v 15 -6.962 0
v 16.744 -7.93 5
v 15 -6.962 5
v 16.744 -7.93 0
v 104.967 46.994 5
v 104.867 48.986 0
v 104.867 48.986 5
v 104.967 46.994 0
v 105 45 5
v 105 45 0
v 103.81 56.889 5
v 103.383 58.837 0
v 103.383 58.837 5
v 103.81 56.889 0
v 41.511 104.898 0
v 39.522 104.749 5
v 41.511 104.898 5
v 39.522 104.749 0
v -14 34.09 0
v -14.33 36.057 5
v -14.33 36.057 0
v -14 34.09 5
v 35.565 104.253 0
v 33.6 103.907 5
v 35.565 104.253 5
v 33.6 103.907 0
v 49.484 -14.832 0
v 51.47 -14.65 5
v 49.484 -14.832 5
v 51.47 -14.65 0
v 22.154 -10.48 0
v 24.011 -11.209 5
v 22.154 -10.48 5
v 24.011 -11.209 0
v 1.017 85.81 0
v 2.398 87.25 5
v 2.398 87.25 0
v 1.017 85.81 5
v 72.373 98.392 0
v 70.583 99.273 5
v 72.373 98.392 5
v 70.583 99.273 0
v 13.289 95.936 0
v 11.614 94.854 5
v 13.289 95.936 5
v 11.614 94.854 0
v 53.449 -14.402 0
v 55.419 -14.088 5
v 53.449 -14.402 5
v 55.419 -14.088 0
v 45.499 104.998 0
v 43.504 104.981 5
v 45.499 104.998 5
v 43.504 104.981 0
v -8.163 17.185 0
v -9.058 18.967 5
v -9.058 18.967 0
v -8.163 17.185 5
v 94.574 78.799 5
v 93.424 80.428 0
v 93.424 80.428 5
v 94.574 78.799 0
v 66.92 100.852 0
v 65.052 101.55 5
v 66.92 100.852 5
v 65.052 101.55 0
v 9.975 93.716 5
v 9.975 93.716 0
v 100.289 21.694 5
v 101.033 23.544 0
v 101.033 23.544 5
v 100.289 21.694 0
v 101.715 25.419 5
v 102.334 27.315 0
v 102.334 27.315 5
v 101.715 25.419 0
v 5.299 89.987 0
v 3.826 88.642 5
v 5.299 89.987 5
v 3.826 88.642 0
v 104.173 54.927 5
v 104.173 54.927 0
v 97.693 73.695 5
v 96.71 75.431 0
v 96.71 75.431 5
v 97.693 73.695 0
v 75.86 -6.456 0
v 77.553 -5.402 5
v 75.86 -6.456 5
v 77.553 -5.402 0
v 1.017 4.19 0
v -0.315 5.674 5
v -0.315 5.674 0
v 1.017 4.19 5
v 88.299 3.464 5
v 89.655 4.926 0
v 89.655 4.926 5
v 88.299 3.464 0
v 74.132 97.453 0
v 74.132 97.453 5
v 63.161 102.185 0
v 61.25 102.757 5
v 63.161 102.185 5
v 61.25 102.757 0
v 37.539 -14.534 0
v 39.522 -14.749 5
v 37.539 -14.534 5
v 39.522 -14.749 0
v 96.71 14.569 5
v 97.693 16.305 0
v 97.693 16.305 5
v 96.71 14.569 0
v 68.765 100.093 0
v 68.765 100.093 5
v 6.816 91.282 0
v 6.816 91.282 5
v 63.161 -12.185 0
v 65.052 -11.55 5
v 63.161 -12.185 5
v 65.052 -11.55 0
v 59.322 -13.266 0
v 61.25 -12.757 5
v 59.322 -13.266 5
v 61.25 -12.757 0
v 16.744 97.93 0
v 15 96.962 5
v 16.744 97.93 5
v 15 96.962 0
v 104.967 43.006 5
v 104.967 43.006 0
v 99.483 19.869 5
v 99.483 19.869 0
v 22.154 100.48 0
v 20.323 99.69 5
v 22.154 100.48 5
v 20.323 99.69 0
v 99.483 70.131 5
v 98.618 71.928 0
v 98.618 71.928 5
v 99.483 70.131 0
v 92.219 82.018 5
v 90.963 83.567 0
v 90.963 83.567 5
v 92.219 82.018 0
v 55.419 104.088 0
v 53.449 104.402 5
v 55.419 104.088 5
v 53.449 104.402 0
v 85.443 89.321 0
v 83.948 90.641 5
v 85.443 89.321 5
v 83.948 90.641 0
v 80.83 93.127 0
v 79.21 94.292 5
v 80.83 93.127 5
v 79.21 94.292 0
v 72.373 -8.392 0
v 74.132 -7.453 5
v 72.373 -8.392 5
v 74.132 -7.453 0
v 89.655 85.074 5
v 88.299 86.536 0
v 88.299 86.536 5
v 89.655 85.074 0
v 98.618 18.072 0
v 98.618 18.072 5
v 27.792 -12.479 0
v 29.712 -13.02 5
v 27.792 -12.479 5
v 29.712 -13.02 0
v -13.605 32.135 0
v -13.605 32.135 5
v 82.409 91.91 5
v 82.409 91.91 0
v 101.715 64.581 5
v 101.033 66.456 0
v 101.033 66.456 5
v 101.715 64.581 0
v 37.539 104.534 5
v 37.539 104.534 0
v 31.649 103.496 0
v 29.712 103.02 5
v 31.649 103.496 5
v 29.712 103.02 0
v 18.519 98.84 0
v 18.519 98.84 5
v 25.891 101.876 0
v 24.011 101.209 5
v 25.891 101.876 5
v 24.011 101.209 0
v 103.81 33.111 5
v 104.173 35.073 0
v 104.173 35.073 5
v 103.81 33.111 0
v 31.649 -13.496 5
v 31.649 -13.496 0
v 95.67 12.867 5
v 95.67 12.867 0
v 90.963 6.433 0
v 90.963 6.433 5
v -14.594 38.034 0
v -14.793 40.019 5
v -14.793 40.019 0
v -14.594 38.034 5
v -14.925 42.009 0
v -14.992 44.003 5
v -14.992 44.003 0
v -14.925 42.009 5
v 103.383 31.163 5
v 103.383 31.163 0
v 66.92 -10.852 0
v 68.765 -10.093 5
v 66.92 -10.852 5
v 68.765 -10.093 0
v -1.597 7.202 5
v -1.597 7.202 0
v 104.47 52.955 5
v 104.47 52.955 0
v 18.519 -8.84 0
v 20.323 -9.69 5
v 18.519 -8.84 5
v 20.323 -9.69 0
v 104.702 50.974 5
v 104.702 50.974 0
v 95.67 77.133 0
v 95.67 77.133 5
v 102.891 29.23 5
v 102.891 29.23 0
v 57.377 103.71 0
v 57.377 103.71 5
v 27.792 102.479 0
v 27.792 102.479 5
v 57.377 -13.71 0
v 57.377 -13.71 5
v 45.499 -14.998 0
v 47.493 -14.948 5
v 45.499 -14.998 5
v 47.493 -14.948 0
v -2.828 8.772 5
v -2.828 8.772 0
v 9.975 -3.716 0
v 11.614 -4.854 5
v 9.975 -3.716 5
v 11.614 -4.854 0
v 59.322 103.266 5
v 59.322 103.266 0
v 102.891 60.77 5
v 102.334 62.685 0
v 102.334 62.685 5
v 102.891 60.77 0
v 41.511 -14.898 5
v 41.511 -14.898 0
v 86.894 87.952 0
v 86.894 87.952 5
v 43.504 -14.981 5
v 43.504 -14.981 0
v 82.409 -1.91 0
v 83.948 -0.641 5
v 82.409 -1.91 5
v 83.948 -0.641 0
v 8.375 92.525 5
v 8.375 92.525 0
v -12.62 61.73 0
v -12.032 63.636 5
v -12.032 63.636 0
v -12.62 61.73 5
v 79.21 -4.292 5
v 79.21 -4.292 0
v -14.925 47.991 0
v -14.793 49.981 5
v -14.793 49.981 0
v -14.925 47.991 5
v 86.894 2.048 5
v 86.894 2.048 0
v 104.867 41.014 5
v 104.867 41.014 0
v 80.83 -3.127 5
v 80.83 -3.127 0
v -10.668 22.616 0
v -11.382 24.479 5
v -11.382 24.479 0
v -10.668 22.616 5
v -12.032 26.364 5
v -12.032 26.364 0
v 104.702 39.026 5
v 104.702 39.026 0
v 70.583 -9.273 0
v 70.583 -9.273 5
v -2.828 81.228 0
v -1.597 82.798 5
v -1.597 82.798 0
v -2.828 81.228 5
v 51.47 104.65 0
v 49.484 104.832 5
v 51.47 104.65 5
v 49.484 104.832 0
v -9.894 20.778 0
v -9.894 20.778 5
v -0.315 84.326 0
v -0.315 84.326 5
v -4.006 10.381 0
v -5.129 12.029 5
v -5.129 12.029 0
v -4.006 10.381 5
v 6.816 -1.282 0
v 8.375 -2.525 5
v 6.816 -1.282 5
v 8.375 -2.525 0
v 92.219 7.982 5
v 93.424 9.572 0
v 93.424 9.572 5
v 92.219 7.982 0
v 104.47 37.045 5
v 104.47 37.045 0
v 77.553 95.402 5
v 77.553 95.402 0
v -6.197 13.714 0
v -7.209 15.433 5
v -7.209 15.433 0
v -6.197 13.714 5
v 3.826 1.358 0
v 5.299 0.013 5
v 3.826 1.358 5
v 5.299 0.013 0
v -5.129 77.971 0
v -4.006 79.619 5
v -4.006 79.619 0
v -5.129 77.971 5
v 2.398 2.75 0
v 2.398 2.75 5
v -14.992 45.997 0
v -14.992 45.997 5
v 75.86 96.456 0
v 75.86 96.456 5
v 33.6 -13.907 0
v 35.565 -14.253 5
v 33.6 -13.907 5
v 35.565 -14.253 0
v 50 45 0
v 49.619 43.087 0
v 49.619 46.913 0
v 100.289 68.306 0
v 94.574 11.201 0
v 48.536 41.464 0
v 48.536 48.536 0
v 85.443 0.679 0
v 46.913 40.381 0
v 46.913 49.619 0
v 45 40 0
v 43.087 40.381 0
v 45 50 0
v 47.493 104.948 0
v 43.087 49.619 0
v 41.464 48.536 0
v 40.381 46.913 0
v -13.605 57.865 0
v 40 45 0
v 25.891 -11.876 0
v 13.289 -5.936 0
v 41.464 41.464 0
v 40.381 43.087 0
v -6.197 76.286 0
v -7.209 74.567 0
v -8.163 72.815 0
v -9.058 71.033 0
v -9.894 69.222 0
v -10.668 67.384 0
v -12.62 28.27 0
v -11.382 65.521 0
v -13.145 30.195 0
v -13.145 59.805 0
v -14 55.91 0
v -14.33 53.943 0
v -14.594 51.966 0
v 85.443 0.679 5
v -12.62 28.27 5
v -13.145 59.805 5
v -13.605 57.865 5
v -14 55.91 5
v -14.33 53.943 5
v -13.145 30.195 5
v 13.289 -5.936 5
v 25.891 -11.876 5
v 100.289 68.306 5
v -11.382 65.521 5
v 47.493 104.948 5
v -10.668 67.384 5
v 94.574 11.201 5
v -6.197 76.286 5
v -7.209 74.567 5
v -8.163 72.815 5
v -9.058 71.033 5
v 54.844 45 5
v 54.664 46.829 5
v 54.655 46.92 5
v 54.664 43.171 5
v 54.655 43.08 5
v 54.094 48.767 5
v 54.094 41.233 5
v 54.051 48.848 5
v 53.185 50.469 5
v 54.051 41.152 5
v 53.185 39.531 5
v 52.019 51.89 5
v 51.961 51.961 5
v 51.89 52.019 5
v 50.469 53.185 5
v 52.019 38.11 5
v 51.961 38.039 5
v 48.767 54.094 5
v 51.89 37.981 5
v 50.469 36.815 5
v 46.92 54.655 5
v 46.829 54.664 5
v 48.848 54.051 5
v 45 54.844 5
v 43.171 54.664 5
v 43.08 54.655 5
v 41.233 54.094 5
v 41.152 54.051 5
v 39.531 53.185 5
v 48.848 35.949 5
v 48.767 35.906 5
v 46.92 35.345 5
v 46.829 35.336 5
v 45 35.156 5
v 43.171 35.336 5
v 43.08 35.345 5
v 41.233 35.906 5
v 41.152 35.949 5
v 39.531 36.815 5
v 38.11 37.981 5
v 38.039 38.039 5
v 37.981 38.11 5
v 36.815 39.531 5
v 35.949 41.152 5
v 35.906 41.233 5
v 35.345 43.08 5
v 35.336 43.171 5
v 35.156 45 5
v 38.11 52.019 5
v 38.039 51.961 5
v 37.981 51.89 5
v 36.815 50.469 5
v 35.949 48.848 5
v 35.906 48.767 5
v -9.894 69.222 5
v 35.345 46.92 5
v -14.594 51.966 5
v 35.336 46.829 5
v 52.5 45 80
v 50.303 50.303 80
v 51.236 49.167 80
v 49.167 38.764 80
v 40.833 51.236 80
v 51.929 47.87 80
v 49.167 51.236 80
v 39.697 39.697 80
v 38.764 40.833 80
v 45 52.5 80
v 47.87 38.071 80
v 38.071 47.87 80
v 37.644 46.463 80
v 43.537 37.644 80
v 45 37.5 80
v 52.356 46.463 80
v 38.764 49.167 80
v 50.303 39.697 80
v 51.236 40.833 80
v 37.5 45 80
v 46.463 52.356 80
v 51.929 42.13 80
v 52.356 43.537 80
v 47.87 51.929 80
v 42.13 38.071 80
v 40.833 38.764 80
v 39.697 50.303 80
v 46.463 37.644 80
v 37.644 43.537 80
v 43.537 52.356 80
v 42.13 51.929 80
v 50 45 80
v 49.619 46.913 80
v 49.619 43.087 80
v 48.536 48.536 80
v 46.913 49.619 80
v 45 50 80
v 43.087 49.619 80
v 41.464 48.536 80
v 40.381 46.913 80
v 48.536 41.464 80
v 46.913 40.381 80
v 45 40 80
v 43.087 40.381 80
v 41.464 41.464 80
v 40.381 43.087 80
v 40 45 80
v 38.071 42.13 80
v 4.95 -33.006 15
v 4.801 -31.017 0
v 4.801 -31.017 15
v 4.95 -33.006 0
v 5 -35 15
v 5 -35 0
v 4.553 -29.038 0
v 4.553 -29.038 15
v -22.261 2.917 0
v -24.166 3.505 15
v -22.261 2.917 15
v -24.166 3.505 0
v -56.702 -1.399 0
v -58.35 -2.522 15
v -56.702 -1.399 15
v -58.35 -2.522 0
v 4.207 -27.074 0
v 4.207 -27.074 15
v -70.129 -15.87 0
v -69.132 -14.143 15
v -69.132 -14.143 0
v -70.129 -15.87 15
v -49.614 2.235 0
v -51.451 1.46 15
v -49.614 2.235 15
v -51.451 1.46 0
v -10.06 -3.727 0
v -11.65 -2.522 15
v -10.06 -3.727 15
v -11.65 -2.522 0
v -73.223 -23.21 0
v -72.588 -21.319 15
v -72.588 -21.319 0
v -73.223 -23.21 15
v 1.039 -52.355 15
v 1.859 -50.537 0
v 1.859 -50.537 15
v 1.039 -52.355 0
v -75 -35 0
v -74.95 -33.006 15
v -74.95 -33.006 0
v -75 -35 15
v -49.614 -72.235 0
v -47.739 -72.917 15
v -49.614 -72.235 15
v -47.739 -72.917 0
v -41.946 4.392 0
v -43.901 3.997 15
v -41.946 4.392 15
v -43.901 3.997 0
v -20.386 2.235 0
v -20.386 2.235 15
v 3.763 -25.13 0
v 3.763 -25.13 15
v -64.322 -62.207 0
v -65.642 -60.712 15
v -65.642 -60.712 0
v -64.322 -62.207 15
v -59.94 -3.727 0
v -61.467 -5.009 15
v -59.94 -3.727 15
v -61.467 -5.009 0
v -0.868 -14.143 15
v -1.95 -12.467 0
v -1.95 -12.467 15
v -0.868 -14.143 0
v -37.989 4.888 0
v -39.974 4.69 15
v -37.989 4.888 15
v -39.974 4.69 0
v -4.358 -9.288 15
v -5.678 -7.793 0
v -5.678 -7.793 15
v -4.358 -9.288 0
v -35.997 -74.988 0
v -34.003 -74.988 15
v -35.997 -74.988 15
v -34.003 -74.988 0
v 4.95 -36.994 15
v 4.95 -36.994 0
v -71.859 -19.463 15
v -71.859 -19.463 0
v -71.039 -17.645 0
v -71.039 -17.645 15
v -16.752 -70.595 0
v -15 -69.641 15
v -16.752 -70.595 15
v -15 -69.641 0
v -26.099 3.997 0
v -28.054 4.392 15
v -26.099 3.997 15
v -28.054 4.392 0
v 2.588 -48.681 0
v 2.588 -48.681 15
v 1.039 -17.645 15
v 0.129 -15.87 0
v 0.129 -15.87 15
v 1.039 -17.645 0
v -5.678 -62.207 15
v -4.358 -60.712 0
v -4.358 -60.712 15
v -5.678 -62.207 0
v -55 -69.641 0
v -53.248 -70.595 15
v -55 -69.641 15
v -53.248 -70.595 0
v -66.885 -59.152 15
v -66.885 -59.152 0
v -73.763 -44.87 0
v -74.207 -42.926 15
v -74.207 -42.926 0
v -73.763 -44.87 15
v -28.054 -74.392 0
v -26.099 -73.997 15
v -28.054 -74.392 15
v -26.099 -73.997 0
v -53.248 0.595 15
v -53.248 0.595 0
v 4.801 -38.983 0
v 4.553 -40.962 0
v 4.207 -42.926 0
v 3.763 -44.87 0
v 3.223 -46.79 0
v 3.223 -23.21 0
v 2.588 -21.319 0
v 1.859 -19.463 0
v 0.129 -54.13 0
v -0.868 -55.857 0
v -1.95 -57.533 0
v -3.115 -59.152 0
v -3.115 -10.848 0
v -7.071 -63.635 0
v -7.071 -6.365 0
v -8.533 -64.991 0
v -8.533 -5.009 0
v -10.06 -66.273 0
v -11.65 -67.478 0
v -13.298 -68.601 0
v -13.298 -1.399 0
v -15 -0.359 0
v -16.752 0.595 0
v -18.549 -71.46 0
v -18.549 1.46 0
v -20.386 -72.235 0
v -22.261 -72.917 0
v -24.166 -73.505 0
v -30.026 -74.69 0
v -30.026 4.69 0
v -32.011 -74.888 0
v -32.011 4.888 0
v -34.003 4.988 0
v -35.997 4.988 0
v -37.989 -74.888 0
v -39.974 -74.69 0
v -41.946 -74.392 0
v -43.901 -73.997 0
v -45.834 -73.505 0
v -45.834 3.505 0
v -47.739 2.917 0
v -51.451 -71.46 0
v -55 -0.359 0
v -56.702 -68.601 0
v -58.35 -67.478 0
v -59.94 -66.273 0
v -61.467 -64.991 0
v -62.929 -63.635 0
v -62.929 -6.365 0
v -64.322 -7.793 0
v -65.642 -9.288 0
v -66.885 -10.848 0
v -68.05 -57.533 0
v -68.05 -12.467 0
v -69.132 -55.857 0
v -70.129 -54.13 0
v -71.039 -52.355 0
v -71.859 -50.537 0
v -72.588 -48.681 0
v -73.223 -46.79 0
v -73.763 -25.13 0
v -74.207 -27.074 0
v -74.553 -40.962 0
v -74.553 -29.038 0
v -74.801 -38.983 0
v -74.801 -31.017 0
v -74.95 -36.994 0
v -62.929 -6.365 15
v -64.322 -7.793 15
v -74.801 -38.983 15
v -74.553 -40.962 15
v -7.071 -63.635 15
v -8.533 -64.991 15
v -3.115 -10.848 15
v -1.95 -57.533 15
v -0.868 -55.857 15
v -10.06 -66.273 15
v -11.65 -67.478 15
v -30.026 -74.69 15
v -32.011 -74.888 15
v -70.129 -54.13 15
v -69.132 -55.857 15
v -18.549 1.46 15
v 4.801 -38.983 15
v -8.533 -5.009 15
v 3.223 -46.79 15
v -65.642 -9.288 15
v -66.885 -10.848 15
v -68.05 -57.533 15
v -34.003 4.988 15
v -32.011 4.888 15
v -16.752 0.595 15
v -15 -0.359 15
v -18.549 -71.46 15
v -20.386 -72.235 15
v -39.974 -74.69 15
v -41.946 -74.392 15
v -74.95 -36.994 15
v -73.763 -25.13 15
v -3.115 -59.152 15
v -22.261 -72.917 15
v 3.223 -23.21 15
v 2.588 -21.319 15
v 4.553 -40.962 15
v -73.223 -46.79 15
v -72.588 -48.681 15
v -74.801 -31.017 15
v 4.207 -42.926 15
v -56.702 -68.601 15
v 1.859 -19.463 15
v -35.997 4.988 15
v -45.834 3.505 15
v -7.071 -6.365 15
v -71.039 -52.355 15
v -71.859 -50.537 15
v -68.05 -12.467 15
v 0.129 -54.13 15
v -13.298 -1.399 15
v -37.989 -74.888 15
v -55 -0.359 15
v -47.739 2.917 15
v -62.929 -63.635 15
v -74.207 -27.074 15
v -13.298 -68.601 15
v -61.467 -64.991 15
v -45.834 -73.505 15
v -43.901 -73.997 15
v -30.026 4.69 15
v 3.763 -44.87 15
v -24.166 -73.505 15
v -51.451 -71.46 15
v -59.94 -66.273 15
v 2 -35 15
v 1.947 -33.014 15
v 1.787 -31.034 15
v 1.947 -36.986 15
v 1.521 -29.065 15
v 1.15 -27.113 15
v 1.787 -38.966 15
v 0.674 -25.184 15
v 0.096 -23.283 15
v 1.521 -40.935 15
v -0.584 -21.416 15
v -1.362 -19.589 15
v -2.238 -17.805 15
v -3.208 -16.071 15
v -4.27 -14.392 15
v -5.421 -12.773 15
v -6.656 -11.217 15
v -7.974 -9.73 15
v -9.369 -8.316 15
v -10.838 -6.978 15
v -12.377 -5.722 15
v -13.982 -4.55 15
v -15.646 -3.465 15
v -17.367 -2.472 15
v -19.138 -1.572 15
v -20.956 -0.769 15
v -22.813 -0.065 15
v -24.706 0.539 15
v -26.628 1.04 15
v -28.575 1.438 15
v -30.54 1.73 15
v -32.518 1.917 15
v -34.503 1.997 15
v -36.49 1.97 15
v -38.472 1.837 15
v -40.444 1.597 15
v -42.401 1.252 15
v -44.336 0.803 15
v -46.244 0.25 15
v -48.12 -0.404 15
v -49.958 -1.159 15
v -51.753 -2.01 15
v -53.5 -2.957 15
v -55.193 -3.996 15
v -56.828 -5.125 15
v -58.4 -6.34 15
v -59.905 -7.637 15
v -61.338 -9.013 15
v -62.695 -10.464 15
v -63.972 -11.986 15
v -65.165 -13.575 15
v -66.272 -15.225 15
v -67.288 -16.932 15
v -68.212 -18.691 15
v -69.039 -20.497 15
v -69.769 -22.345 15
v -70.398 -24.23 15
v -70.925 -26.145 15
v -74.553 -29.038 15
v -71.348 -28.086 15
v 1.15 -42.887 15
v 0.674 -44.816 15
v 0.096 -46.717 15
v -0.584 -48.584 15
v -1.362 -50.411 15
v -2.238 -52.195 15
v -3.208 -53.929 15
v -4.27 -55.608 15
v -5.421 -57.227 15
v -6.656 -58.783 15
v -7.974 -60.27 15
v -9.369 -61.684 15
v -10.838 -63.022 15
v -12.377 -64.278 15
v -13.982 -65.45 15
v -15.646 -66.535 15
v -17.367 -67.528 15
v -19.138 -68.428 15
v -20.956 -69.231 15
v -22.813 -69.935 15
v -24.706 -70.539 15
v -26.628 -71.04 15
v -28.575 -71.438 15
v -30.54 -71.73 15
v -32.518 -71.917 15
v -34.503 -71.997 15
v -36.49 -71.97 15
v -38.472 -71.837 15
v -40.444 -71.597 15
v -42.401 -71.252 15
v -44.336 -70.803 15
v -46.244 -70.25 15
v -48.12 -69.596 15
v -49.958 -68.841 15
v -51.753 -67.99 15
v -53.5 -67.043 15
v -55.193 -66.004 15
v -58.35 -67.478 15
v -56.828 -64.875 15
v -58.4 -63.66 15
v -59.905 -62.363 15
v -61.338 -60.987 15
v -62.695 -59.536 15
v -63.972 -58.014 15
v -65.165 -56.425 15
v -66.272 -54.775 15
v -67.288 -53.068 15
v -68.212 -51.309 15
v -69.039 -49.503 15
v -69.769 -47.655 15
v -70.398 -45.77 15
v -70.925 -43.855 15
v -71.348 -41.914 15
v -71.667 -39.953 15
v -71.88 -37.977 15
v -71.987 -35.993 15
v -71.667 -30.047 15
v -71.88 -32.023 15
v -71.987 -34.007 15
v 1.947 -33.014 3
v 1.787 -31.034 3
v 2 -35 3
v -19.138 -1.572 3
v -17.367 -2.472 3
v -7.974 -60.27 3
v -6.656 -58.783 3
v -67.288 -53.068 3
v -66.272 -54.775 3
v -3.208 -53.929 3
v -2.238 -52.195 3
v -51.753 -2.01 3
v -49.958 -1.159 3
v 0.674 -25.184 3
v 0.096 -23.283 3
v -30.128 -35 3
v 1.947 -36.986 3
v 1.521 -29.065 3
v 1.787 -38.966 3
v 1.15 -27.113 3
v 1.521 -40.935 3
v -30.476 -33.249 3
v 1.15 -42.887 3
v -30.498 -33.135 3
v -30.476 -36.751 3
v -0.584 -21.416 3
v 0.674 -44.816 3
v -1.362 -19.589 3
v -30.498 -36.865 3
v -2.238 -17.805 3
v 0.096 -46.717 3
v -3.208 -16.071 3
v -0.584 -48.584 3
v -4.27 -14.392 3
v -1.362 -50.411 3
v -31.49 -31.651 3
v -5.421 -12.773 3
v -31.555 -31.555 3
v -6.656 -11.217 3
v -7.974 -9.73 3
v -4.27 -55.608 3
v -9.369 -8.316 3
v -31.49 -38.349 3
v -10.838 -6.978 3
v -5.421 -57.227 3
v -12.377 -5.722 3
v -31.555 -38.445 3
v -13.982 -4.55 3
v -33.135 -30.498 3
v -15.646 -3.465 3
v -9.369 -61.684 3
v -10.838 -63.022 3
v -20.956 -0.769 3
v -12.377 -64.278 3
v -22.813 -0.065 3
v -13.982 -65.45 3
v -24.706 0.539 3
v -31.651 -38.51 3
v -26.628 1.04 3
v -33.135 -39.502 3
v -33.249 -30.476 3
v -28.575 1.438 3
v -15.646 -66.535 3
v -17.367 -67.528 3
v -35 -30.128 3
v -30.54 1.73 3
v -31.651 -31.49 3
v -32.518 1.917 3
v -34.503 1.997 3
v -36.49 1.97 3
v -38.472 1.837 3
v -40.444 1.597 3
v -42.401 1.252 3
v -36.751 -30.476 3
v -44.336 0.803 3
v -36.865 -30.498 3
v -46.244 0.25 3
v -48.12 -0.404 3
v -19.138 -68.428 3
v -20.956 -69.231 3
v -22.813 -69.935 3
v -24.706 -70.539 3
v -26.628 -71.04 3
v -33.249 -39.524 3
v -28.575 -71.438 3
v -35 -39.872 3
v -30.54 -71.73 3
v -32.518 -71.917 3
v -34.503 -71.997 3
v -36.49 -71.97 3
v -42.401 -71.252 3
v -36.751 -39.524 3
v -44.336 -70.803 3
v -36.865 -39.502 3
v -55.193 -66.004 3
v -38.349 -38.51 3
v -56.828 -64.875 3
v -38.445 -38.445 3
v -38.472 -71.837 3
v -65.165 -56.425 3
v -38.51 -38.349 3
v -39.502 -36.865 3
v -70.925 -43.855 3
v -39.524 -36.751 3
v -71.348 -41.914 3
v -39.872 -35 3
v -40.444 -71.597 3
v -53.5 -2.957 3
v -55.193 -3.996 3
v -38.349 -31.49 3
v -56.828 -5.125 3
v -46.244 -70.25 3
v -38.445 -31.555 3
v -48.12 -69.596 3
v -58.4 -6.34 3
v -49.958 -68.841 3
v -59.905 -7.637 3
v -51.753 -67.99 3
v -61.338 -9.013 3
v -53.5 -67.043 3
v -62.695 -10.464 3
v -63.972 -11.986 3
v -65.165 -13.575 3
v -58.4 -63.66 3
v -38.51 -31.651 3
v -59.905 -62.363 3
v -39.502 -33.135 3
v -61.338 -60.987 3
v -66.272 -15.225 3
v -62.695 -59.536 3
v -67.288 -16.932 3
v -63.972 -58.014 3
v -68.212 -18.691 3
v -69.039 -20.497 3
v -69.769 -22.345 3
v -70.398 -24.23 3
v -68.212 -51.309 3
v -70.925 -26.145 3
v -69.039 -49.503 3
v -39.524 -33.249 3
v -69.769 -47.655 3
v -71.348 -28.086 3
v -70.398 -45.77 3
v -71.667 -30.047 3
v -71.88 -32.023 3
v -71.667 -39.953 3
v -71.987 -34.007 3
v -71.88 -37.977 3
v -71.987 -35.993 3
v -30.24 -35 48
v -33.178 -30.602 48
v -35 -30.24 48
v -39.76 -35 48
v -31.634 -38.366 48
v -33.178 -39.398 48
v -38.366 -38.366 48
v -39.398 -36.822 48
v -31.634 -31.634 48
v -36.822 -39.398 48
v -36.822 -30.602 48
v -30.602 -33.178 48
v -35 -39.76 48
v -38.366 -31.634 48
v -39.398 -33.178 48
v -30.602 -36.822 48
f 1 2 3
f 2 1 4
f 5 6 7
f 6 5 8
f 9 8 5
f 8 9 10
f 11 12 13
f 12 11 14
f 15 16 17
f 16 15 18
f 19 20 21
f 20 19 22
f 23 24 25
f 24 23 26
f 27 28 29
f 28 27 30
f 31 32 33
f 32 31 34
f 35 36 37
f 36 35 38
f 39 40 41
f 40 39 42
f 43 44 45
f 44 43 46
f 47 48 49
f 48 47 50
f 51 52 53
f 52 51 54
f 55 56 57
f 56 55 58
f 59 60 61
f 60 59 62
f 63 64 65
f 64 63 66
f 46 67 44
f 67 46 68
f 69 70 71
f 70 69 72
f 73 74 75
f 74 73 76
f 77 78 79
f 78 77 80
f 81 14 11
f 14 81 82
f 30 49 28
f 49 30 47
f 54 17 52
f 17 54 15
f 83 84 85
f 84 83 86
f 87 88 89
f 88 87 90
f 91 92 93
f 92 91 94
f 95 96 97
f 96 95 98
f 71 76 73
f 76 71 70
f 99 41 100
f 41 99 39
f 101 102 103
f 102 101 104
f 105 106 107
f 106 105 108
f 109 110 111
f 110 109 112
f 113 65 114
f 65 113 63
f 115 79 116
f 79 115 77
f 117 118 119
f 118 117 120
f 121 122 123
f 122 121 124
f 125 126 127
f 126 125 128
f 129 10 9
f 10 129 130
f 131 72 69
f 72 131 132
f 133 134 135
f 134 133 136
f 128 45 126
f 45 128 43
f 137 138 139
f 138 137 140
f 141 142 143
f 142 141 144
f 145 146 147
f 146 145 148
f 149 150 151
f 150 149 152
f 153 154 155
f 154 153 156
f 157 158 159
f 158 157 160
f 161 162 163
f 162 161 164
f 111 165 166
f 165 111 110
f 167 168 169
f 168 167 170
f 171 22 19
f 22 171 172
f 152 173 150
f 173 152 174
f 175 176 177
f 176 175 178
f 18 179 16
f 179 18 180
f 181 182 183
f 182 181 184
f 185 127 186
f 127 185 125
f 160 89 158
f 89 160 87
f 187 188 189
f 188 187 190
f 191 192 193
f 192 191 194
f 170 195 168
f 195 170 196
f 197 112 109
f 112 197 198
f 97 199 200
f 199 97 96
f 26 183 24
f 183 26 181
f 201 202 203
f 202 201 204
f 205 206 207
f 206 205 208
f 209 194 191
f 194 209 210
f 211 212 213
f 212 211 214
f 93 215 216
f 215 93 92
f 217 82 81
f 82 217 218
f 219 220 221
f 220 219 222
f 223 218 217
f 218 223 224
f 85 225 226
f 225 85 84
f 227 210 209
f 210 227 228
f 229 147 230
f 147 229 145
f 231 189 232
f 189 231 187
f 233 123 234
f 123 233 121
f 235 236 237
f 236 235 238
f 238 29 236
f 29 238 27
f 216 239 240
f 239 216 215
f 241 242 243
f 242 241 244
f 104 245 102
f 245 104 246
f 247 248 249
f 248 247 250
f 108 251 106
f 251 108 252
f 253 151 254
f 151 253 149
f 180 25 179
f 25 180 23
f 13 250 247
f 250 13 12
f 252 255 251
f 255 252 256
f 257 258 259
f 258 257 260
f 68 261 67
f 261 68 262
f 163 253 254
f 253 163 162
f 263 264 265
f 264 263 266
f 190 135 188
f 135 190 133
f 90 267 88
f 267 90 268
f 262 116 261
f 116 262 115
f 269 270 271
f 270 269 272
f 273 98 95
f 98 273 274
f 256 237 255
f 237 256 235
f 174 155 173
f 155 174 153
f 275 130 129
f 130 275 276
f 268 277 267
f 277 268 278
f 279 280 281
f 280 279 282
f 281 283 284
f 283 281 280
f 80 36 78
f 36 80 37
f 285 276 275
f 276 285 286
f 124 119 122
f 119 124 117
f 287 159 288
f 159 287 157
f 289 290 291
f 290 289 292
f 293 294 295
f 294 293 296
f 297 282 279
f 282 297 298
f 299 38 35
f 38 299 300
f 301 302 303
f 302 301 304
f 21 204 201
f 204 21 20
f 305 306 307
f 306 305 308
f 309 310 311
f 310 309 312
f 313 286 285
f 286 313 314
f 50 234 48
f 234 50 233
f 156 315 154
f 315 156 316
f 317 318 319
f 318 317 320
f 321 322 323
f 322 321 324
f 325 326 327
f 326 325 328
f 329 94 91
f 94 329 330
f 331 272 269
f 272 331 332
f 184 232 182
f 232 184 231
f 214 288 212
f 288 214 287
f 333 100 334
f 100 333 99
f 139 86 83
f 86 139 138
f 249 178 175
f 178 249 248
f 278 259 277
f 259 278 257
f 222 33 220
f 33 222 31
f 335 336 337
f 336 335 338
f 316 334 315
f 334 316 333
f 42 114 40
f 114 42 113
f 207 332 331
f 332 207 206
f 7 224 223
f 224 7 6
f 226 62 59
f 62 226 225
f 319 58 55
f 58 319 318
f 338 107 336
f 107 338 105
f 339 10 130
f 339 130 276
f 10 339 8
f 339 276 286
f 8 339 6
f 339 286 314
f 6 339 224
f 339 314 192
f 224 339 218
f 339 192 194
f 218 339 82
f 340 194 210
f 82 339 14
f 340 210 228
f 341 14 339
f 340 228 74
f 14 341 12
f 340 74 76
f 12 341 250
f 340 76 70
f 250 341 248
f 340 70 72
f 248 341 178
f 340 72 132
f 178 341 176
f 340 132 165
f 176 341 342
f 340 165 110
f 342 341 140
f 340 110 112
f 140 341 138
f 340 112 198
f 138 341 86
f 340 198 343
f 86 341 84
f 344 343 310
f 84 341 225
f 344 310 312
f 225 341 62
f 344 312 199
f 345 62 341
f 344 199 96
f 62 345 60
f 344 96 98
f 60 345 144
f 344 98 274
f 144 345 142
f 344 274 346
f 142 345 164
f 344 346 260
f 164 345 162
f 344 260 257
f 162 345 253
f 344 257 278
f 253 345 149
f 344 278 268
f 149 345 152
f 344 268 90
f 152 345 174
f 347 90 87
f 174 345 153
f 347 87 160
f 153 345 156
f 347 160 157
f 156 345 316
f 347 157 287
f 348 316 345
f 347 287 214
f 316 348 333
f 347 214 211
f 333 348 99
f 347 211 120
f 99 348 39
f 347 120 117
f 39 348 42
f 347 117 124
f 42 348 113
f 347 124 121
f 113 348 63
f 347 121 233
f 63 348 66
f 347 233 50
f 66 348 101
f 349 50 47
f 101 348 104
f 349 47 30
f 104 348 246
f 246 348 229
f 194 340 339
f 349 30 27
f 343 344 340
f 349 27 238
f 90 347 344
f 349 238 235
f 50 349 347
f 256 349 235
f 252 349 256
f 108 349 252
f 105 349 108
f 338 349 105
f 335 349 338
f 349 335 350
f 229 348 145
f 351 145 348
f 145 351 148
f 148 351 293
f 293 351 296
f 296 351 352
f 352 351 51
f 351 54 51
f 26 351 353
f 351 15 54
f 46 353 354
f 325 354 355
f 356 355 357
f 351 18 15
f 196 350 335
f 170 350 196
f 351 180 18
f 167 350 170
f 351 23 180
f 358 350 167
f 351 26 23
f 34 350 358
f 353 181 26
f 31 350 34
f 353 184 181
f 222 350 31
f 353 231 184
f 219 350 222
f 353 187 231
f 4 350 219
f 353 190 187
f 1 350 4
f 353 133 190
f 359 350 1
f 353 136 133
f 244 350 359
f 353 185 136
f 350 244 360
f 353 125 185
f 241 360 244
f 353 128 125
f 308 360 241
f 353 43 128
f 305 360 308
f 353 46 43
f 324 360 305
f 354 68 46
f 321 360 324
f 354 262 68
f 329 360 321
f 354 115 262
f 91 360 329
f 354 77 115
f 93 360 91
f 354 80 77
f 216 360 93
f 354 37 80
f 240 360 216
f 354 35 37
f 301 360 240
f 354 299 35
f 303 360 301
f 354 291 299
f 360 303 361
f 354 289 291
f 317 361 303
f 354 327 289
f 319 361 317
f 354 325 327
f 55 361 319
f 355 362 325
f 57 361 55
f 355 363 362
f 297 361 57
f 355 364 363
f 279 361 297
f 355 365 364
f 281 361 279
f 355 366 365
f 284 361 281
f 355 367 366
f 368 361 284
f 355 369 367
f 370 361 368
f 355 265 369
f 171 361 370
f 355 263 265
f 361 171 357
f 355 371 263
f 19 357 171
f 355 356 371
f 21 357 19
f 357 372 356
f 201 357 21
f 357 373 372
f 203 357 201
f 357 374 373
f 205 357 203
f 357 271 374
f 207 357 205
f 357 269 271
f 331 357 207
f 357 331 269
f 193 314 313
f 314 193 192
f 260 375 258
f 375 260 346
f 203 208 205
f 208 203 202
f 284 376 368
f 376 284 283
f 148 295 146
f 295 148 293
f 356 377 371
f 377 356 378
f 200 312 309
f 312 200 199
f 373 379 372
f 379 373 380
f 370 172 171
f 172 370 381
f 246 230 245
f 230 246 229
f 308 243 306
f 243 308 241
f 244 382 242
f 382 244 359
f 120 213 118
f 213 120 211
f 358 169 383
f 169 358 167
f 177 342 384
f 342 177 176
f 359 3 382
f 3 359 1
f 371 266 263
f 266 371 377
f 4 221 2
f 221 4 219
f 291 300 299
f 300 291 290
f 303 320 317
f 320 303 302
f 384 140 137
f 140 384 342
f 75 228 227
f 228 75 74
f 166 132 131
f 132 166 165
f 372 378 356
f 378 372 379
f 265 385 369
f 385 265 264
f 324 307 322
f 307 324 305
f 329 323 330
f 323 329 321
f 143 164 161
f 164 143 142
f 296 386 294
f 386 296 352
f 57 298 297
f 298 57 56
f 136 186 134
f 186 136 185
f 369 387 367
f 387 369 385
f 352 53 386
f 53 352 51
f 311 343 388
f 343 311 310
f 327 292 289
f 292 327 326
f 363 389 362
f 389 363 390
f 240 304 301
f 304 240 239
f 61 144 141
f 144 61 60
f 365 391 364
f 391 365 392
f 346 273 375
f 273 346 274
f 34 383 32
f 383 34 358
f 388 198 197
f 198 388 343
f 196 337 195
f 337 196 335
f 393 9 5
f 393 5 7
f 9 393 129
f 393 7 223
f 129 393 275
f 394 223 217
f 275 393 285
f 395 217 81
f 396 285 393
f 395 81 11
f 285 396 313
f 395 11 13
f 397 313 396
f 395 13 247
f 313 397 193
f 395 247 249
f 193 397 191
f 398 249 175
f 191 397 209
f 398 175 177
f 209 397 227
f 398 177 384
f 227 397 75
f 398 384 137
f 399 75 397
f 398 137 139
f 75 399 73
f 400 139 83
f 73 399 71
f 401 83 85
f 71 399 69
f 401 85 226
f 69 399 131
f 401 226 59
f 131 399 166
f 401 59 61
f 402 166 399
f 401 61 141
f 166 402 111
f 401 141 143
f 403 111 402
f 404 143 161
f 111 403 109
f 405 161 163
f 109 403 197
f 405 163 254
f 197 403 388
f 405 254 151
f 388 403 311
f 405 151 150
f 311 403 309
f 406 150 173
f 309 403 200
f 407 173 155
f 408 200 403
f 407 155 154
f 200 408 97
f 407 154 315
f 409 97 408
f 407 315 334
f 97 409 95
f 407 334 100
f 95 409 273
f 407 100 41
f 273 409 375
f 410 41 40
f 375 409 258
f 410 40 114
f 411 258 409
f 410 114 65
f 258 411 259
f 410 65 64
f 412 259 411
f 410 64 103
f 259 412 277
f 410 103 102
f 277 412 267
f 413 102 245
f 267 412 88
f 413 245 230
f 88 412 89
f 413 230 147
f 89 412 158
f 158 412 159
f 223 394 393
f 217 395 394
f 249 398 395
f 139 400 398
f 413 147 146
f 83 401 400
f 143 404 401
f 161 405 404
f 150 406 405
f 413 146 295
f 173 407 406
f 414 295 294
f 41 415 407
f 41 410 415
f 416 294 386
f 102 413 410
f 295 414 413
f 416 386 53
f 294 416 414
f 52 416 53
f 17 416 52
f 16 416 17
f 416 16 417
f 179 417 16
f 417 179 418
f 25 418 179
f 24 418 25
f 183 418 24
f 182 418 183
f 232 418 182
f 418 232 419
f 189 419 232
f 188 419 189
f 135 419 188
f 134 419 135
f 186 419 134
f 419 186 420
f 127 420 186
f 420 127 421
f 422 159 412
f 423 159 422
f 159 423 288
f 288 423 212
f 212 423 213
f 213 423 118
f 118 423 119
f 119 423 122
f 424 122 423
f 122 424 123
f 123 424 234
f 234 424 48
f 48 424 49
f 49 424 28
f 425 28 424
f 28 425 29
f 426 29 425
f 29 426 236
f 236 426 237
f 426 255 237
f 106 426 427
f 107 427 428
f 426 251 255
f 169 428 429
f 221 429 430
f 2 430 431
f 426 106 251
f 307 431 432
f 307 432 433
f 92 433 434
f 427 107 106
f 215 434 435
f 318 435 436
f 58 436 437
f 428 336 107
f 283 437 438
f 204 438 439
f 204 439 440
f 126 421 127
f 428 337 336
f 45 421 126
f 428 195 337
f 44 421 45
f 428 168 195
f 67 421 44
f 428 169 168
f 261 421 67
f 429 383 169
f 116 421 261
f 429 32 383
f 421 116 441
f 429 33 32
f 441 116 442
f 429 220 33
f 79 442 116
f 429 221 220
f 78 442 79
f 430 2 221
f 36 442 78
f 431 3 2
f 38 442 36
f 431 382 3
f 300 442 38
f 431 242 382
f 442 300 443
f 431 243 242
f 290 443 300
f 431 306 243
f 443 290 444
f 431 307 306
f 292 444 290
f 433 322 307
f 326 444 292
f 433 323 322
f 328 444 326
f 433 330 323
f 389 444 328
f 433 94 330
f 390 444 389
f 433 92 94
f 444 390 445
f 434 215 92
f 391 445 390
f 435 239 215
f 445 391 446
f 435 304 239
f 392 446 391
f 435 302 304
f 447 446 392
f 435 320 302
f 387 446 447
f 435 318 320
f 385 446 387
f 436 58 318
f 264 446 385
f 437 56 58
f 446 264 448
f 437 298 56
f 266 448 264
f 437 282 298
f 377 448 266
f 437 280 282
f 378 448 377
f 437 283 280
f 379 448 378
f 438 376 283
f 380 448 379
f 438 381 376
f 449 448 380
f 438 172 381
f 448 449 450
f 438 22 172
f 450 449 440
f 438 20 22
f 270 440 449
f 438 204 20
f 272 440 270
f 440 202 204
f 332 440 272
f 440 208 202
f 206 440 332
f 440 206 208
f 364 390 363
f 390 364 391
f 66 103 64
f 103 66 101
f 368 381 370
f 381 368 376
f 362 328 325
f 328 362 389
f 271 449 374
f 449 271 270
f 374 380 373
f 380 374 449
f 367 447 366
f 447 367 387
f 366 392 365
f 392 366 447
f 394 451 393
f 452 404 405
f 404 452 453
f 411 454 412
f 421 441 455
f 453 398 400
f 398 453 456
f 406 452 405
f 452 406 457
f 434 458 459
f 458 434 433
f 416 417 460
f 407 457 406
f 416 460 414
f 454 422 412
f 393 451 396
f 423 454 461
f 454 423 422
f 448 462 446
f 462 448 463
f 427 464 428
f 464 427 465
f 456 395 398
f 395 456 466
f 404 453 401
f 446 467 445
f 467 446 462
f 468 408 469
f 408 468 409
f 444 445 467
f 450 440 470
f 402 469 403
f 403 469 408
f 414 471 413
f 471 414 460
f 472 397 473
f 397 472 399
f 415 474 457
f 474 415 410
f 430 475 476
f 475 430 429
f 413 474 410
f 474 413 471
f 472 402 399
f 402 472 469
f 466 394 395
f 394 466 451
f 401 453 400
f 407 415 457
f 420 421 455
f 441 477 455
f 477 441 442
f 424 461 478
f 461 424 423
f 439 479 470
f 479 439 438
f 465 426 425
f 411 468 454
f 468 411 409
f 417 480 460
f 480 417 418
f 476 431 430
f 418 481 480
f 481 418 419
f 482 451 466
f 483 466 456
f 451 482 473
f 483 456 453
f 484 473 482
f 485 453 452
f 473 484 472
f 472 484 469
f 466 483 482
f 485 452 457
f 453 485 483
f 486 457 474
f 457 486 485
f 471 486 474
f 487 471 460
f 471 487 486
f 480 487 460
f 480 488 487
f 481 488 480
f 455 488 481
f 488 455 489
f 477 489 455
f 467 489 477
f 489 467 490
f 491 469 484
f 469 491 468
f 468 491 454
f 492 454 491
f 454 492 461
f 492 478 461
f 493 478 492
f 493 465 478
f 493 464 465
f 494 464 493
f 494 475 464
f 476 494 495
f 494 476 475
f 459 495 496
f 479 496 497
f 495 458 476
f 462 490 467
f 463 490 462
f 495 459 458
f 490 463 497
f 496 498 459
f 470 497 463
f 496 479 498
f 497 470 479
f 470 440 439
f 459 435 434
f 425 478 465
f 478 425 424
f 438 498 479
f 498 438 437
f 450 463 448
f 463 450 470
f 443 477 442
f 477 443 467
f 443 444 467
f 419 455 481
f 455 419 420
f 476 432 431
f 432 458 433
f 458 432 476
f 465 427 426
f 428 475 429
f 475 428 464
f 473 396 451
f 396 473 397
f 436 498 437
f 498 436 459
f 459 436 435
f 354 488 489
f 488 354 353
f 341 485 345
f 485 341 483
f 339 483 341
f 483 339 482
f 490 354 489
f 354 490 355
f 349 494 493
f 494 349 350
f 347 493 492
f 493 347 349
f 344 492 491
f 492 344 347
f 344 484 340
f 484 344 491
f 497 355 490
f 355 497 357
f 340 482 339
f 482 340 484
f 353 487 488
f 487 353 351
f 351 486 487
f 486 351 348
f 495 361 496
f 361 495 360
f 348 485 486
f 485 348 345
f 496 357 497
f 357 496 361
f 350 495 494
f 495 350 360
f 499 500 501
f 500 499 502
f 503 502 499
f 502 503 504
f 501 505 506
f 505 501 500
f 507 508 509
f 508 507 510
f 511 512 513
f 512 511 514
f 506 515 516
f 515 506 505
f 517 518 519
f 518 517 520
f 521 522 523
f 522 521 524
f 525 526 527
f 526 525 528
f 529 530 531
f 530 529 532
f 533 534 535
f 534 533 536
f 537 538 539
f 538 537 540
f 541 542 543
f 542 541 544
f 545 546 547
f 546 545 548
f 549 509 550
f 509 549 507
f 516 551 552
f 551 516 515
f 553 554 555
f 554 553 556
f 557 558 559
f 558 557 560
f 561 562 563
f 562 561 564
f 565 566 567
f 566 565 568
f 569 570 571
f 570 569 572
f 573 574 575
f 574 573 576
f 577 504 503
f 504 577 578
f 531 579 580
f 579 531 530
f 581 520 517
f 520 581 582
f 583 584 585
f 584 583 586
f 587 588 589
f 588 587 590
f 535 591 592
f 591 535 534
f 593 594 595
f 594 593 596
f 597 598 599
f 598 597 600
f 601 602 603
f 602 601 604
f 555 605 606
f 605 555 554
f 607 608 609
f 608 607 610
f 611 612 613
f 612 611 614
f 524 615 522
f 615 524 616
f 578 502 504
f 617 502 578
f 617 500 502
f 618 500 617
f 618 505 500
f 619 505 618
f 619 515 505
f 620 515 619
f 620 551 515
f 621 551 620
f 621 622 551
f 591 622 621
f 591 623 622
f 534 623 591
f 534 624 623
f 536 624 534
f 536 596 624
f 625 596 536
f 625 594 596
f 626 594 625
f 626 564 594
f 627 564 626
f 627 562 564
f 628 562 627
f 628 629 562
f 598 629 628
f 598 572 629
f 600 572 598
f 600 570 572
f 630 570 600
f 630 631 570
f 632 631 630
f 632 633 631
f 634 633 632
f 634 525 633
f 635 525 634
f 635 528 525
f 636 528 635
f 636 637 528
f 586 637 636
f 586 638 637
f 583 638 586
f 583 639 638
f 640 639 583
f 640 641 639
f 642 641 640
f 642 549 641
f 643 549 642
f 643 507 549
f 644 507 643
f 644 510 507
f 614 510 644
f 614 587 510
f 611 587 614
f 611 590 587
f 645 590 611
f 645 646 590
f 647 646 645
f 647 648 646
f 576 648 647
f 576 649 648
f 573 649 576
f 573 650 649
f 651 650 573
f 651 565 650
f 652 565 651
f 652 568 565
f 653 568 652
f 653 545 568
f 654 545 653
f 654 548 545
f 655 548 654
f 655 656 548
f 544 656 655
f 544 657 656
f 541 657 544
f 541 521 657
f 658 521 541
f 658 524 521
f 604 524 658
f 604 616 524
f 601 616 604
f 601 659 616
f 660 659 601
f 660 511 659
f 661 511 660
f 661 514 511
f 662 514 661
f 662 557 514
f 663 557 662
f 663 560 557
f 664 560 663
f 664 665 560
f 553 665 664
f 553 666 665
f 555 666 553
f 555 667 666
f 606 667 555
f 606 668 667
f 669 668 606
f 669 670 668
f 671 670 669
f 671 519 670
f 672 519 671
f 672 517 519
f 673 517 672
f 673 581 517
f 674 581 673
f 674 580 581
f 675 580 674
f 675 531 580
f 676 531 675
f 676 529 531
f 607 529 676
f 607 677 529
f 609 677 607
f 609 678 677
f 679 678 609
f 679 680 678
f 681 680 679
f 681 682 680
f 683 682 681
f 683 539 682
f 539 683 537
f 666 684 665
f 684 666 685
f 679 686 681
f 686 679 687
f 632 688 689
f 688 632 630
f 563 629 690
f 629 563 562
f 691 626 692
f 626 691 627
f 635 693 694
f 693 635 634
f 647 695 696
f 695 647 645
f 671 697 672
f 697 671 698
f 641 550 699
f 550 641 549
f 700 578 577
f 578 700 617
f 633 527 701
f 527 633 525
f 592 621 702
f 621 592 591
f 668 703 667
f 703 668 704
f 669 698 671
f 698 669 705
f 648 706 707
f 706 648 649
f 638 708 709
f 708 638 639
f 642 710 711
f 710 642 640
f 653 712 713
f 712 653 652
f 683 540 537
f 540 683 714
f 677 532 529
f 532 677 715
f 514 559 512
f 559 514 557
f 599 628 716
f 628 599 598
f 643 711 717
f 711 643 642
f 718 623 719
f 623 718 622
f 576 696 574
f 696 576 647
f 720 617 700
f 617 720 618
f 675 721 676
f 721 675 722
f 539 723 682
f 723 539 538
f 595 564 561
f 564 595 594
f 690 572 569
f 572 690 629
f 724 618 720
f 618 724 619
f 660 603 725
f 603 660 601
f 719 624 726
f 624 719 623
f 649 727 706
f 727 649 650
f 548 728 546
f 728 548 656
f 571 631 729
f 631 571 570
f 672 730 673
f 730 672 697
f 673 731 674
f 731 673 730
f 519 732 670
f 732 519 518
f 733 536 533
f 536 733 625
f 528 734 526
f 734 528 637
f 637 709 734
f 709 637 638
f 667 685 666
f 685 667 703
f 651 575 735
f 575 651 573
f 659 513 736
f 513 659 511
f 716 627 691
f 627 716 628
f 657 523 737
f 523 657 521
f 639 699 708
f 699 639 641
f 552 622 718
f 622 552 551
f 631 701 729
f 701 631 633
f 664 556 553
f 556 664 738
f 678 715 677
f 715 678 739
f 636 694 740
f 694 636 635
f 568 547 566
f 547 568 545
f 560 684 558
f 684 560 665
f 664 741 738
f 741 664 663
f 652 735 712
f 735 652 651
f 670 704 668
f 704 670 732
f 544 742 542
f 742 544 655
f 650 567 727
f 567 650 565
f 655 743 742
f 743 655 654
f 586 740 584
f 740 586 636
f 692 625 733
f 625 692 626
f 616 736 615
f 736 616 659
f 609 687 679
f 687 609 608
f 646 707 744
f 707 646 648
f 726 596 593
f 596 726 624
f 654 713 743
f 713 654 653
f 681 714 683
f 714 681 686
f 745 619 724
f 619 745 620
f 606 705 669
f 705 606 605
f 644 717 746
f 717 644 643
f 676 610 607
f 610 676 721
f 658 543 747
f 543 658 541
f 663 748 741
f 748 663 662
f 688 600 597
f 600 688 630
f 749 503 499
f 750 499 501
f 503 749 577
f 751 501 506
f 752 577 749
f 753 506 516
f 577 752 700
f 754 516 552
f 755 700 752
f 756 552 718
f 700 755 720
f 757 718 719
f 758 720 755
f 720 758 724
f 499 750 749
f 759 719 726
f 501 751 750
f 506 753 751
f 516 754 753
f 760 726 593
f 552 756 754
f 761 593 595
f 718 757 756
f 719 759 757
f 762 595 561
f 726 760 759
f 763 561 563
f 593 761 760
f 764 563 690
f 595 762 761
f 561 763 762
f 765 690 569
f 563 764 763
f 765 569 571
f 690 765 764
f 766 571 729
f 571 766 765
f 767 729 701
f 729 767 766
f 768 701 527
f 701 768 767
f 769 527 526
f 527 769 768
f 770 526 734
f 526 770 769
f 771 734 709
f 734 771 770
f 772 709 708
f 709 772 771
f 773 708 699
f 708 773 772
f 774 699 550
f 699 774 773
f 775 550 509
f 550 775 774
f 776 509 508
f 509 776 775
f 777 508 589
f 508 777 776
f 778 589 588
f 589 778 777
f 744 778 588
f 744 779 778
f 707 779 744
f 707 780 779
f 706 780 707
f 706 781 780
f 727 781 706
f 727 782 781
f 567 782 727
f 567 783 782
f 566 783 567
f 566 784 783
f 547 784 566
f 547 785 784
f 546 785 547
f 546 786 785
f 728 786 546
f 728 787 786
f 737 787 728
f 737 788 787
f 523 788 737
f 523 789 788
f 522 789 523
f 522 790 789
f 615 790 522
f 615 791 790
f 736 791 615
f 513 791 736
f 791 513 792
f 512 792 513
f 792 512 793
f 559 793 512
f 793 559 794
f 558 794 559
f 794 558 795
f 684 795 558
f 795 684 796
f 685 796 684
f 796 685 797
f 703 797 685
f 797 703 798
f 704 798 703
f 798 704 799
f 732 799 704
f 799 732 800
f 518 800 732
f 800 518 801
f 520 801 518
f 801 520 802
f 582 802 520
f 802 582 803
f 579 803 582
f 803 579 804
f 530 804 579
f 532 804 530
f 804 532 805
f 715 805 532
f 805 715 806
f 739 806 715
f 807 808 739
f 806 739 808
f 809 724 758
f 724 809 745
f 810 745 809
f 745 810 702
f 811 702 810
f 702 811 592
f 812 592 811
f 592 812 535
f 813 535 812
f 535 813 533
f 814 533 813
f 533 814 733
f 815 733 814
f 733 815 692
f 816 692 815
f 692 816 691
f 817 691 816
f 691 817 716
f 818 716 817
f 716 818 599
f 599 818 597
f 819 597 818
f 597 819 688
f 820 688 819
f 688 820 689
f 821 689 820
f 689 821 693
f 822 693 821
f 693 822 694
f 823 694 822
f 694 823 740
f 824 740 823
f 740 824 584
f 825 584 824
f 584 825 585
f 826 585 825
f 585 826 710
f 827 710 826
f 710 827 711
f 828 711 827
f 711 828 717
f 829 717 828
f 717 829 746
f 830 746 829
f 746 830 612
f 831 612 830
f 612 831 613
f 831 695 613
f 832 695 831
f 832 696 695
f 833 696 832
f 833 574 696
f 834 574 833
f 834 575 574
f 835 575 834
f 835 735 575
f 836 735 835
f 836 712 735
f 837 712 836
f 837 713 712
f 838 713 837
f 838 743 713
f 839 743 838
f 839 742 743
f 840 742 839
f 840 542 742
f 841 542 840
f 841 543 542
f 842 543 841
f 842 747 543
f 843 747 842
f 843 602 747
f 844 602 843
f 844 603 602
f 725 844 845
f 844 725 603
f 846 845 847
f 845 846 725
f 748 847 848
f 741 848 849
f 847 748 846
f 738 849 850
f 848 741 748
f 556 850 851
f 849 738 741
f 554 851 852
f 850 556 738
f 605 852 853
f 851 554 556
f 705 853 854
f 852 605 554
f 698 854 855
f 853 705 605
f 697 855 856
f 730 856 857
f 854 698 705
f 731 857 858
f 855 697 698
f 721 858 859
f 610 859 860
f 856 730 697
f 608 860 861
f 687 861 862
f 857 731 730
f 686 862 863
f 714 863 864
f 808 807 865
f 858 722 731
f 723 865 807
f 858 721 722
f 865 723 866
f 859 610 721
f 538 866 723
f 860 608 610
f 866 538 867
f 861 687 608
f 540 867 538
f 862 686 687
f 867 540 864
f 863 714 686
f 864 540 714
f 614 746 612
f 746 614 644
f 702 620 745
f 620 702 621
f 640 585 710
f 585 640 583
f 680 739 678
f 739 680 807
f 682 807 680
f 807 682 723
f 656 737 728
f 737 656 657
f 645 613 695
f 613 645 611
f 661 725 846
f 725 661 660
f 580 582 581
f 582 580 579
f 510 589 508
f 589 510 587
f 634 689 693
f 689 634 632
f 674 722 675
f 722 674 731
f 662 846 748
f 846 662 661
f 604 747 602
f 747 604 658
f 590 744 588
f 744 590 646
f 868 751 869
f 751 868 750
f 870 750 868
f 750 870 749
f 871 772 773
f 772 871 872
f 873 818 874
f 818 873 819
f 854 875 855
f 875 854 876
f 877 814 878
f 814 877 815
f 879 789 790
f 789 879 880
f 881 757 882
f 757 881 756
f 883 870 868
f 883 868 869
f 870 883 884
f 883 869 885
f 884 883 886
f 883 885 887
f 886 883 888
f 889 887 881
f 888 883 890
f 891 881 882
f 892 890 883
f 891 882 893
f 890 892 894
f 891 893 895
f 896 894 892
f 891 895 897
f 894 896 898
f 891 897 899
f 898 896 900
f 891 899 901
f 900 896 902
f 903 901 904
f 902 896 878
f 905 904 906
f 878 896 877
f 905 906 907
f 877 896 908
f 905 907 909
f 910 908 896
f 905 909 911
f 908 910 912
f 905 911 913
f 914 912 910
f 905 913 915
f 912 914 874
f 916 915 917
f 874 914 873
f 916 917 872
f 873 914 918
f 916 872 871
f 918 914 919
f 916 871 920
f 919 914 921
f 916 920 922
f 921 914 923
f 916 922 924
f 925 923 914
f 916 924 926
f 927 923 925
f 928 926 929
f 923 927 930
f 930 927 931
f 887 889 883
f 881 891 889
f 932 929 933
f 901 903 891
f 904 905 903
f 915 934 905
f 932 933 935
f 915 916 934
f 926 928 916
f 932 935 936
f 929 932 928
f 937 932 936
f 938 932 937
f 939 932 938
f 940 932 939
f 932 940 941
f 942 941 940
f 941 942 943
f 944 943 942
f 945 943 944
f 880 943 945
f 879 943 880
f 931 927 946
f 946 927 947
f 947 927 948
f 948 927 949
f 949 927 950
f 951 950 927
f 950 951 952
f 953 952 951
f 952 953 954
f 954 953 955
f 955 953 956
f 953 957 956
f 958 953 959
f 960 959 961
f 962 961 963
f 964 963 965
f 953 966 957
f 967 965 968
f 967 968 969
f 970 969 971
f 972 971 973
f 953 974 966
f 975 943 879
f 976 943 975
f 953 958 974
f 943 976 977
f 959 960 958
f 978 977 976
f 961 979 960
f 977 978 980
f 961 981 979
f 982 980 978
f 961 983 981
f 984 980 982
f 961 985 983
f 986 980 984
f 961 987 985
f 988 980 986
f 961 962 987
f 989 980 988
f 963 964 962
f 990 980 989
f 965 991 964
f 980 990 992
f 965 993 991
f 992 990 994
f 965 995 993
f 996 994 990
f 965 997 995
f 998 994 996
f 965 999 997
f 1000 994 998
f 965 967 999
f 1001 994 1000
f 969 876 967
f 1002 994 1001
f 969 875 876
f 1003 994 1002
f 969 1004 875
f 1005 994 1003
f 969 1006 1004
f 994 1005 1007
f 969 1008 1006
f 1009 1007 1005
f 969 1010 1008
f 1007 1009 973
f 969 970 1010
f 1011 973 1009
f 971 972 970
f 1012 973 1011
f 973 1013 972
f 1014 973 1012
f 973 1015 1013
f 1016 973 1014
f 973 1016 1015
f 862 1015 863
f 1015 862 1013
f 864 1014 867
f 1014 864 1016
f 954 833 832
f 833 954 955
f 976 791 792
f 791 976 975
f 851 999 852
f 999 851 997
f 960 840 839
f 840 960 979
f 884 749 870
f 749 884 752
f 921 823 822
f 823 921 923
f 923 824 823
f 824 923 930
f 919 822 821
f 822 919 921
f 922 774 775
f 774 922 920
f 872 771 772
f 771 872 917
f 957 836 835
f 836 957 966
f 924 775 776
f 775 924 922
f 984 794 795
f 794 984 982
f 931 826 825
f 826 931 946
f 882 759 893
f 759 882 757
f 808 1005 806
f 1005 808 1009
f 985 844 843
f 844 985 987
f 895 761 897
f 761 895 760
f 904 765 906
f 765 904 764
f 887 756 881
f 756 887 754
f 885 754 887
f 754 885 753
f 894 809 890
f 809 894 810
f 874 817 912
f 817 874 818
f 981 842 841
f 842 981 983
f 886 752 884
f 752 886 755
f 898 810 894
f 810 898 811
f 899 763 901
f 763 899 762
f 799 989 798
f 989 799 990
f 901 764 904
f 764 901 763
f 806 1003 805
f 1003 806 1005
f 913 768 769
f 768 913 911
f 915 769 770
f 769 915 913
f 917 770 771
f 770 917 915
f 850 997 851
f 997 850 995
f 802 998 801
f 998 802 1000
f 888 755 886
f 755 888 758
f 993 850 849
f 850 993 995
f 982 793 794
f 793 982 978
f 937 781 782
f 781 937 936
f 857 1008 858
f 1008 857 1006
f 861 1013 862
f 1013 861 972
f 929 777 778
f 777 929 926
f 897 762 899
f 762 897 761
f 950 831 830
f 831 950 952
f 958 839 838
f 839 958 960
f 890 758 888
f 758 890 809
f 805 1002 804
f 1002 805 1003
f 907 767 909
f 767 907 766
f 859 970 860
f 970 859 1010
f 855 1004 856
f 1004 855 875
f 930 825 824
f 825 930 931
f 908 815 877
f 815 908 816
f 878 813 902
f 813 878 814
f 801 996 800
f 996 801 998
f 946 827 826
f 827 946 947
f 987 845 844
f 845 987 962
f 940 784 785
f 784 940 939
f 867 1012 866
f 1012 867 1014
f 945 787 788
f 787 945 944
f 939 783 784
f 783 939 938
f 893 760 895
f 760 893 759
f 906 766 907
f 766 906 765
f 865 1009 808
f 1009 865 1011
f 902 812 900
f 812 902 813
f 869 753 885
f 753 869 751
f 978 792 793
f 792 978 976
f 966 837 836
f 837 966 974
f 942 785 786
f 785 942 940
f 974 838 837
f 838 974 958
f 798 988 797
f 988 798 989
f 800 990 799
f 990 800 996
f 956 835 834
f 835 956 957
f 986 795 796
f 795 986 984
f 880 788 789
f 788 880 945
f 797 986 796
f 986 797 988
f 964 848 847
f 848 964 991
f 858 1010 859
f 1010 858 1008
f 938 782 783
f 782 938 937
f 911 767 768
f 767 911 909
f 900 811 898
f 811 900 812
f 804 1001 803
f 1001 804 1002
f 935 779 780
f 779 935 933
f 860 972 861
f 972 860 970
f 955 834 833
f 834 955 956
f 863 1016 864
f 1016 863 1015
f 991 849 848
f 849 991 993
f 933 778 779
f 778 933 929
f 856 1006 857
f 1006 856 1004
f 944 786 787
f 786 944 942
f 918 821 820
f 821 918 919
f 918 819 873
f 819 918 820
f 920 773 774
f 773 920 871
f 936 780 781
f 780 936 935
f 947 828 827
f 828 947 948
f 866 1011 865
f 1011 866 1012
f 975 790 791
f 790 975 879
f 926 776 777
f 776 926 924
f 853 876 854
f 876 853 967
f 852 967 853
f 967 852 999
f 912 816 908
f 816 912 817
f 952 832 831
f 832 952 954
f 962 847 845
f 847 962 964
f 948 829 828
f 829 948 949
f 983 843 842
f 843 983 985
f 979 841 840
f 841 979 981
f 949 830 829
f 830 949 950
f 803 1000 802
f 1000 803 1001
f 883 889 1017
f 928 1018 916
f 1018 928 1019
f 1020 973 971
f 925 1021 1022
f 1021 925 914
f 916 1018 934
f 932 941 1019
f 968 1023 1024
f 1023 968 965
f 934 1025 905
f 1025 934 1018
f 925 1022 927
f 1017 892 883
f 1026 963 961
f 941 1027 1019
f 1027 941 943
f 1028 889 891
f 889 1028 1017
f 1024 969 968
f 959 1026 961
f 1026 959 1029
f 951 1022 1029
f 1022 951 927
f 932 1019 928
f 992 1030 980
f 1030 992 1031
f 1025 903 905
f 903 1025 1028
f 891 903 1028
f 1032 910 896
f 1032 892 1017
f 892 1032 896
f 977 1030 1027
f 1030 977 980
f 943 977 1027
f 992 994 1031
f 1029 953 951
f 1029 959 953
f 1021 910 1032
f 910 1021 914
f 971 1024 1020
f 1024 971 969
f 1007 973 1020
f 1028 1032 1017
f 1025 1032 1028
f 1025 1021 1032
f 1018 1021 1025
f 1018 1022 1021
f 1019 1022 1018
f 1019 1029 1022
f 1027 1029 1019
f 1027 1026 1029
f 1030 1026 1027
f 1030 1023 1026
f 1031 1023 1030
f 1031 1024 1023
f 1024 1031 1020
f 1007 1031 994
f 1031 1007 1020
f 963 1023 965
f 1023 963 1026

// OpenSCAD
$fa = 1;
thick = 3;
base_height = 5; //10;
ped_height = 80;
base_diameter = 120;
ped_diameter_bottom = 20; //40;
ped_diameter_top = 15; //30;
hole_diam = 10; //15;
hole_depth = ped_height + 1;
cup_diameter = 80;
cup_height = 15;
peg_height = ped_height * 0.6;// ped_height - base_height*2;
peg_shrinkage = 0.12; //0.15;

//10mm diam x .7mm deep

translate([base_diameter/2-15, base_diameter/2-15, 0]){
  difference(){
    union(){
      translate([0, 0, base_height/2])
        cylinder(h=base_height, r=base_diameter/2, center=true);
      translate([0, 0, ped_height/2])
        cylinder(h=ped_height, r1=ped_diameter_bottom/2, r2=ped_diameter_top/2, 
                 center=true);
    }
    translate([0, 0, ped_height-hole_depth/2+.1])
      cylinder(h=hole_depth+.1, r=hole_diam/2, center=true);
  }
}

translate([-cup_diameter/2+5, -cup_diameter/2+5, 0]){
  union(){
    difference(){
      translate([0, 0, cup_height/2])
        cylinder(h=cup_height, r=cup_diameter/2, center=true);
      translate([0, 0, cup_height/2+thick]) //cup_depth
        cylinder(h=cup_height, r=cup_diameter/2-thick, center=true);
    }
    translate([0, 0, peg_height/2])
      cylinder(h=peg_height, r1=hole_diam/2-peg_shrinkage, 
               r2=hole_diam/2-peg_shrinkage*2, center=true);
  }
}
